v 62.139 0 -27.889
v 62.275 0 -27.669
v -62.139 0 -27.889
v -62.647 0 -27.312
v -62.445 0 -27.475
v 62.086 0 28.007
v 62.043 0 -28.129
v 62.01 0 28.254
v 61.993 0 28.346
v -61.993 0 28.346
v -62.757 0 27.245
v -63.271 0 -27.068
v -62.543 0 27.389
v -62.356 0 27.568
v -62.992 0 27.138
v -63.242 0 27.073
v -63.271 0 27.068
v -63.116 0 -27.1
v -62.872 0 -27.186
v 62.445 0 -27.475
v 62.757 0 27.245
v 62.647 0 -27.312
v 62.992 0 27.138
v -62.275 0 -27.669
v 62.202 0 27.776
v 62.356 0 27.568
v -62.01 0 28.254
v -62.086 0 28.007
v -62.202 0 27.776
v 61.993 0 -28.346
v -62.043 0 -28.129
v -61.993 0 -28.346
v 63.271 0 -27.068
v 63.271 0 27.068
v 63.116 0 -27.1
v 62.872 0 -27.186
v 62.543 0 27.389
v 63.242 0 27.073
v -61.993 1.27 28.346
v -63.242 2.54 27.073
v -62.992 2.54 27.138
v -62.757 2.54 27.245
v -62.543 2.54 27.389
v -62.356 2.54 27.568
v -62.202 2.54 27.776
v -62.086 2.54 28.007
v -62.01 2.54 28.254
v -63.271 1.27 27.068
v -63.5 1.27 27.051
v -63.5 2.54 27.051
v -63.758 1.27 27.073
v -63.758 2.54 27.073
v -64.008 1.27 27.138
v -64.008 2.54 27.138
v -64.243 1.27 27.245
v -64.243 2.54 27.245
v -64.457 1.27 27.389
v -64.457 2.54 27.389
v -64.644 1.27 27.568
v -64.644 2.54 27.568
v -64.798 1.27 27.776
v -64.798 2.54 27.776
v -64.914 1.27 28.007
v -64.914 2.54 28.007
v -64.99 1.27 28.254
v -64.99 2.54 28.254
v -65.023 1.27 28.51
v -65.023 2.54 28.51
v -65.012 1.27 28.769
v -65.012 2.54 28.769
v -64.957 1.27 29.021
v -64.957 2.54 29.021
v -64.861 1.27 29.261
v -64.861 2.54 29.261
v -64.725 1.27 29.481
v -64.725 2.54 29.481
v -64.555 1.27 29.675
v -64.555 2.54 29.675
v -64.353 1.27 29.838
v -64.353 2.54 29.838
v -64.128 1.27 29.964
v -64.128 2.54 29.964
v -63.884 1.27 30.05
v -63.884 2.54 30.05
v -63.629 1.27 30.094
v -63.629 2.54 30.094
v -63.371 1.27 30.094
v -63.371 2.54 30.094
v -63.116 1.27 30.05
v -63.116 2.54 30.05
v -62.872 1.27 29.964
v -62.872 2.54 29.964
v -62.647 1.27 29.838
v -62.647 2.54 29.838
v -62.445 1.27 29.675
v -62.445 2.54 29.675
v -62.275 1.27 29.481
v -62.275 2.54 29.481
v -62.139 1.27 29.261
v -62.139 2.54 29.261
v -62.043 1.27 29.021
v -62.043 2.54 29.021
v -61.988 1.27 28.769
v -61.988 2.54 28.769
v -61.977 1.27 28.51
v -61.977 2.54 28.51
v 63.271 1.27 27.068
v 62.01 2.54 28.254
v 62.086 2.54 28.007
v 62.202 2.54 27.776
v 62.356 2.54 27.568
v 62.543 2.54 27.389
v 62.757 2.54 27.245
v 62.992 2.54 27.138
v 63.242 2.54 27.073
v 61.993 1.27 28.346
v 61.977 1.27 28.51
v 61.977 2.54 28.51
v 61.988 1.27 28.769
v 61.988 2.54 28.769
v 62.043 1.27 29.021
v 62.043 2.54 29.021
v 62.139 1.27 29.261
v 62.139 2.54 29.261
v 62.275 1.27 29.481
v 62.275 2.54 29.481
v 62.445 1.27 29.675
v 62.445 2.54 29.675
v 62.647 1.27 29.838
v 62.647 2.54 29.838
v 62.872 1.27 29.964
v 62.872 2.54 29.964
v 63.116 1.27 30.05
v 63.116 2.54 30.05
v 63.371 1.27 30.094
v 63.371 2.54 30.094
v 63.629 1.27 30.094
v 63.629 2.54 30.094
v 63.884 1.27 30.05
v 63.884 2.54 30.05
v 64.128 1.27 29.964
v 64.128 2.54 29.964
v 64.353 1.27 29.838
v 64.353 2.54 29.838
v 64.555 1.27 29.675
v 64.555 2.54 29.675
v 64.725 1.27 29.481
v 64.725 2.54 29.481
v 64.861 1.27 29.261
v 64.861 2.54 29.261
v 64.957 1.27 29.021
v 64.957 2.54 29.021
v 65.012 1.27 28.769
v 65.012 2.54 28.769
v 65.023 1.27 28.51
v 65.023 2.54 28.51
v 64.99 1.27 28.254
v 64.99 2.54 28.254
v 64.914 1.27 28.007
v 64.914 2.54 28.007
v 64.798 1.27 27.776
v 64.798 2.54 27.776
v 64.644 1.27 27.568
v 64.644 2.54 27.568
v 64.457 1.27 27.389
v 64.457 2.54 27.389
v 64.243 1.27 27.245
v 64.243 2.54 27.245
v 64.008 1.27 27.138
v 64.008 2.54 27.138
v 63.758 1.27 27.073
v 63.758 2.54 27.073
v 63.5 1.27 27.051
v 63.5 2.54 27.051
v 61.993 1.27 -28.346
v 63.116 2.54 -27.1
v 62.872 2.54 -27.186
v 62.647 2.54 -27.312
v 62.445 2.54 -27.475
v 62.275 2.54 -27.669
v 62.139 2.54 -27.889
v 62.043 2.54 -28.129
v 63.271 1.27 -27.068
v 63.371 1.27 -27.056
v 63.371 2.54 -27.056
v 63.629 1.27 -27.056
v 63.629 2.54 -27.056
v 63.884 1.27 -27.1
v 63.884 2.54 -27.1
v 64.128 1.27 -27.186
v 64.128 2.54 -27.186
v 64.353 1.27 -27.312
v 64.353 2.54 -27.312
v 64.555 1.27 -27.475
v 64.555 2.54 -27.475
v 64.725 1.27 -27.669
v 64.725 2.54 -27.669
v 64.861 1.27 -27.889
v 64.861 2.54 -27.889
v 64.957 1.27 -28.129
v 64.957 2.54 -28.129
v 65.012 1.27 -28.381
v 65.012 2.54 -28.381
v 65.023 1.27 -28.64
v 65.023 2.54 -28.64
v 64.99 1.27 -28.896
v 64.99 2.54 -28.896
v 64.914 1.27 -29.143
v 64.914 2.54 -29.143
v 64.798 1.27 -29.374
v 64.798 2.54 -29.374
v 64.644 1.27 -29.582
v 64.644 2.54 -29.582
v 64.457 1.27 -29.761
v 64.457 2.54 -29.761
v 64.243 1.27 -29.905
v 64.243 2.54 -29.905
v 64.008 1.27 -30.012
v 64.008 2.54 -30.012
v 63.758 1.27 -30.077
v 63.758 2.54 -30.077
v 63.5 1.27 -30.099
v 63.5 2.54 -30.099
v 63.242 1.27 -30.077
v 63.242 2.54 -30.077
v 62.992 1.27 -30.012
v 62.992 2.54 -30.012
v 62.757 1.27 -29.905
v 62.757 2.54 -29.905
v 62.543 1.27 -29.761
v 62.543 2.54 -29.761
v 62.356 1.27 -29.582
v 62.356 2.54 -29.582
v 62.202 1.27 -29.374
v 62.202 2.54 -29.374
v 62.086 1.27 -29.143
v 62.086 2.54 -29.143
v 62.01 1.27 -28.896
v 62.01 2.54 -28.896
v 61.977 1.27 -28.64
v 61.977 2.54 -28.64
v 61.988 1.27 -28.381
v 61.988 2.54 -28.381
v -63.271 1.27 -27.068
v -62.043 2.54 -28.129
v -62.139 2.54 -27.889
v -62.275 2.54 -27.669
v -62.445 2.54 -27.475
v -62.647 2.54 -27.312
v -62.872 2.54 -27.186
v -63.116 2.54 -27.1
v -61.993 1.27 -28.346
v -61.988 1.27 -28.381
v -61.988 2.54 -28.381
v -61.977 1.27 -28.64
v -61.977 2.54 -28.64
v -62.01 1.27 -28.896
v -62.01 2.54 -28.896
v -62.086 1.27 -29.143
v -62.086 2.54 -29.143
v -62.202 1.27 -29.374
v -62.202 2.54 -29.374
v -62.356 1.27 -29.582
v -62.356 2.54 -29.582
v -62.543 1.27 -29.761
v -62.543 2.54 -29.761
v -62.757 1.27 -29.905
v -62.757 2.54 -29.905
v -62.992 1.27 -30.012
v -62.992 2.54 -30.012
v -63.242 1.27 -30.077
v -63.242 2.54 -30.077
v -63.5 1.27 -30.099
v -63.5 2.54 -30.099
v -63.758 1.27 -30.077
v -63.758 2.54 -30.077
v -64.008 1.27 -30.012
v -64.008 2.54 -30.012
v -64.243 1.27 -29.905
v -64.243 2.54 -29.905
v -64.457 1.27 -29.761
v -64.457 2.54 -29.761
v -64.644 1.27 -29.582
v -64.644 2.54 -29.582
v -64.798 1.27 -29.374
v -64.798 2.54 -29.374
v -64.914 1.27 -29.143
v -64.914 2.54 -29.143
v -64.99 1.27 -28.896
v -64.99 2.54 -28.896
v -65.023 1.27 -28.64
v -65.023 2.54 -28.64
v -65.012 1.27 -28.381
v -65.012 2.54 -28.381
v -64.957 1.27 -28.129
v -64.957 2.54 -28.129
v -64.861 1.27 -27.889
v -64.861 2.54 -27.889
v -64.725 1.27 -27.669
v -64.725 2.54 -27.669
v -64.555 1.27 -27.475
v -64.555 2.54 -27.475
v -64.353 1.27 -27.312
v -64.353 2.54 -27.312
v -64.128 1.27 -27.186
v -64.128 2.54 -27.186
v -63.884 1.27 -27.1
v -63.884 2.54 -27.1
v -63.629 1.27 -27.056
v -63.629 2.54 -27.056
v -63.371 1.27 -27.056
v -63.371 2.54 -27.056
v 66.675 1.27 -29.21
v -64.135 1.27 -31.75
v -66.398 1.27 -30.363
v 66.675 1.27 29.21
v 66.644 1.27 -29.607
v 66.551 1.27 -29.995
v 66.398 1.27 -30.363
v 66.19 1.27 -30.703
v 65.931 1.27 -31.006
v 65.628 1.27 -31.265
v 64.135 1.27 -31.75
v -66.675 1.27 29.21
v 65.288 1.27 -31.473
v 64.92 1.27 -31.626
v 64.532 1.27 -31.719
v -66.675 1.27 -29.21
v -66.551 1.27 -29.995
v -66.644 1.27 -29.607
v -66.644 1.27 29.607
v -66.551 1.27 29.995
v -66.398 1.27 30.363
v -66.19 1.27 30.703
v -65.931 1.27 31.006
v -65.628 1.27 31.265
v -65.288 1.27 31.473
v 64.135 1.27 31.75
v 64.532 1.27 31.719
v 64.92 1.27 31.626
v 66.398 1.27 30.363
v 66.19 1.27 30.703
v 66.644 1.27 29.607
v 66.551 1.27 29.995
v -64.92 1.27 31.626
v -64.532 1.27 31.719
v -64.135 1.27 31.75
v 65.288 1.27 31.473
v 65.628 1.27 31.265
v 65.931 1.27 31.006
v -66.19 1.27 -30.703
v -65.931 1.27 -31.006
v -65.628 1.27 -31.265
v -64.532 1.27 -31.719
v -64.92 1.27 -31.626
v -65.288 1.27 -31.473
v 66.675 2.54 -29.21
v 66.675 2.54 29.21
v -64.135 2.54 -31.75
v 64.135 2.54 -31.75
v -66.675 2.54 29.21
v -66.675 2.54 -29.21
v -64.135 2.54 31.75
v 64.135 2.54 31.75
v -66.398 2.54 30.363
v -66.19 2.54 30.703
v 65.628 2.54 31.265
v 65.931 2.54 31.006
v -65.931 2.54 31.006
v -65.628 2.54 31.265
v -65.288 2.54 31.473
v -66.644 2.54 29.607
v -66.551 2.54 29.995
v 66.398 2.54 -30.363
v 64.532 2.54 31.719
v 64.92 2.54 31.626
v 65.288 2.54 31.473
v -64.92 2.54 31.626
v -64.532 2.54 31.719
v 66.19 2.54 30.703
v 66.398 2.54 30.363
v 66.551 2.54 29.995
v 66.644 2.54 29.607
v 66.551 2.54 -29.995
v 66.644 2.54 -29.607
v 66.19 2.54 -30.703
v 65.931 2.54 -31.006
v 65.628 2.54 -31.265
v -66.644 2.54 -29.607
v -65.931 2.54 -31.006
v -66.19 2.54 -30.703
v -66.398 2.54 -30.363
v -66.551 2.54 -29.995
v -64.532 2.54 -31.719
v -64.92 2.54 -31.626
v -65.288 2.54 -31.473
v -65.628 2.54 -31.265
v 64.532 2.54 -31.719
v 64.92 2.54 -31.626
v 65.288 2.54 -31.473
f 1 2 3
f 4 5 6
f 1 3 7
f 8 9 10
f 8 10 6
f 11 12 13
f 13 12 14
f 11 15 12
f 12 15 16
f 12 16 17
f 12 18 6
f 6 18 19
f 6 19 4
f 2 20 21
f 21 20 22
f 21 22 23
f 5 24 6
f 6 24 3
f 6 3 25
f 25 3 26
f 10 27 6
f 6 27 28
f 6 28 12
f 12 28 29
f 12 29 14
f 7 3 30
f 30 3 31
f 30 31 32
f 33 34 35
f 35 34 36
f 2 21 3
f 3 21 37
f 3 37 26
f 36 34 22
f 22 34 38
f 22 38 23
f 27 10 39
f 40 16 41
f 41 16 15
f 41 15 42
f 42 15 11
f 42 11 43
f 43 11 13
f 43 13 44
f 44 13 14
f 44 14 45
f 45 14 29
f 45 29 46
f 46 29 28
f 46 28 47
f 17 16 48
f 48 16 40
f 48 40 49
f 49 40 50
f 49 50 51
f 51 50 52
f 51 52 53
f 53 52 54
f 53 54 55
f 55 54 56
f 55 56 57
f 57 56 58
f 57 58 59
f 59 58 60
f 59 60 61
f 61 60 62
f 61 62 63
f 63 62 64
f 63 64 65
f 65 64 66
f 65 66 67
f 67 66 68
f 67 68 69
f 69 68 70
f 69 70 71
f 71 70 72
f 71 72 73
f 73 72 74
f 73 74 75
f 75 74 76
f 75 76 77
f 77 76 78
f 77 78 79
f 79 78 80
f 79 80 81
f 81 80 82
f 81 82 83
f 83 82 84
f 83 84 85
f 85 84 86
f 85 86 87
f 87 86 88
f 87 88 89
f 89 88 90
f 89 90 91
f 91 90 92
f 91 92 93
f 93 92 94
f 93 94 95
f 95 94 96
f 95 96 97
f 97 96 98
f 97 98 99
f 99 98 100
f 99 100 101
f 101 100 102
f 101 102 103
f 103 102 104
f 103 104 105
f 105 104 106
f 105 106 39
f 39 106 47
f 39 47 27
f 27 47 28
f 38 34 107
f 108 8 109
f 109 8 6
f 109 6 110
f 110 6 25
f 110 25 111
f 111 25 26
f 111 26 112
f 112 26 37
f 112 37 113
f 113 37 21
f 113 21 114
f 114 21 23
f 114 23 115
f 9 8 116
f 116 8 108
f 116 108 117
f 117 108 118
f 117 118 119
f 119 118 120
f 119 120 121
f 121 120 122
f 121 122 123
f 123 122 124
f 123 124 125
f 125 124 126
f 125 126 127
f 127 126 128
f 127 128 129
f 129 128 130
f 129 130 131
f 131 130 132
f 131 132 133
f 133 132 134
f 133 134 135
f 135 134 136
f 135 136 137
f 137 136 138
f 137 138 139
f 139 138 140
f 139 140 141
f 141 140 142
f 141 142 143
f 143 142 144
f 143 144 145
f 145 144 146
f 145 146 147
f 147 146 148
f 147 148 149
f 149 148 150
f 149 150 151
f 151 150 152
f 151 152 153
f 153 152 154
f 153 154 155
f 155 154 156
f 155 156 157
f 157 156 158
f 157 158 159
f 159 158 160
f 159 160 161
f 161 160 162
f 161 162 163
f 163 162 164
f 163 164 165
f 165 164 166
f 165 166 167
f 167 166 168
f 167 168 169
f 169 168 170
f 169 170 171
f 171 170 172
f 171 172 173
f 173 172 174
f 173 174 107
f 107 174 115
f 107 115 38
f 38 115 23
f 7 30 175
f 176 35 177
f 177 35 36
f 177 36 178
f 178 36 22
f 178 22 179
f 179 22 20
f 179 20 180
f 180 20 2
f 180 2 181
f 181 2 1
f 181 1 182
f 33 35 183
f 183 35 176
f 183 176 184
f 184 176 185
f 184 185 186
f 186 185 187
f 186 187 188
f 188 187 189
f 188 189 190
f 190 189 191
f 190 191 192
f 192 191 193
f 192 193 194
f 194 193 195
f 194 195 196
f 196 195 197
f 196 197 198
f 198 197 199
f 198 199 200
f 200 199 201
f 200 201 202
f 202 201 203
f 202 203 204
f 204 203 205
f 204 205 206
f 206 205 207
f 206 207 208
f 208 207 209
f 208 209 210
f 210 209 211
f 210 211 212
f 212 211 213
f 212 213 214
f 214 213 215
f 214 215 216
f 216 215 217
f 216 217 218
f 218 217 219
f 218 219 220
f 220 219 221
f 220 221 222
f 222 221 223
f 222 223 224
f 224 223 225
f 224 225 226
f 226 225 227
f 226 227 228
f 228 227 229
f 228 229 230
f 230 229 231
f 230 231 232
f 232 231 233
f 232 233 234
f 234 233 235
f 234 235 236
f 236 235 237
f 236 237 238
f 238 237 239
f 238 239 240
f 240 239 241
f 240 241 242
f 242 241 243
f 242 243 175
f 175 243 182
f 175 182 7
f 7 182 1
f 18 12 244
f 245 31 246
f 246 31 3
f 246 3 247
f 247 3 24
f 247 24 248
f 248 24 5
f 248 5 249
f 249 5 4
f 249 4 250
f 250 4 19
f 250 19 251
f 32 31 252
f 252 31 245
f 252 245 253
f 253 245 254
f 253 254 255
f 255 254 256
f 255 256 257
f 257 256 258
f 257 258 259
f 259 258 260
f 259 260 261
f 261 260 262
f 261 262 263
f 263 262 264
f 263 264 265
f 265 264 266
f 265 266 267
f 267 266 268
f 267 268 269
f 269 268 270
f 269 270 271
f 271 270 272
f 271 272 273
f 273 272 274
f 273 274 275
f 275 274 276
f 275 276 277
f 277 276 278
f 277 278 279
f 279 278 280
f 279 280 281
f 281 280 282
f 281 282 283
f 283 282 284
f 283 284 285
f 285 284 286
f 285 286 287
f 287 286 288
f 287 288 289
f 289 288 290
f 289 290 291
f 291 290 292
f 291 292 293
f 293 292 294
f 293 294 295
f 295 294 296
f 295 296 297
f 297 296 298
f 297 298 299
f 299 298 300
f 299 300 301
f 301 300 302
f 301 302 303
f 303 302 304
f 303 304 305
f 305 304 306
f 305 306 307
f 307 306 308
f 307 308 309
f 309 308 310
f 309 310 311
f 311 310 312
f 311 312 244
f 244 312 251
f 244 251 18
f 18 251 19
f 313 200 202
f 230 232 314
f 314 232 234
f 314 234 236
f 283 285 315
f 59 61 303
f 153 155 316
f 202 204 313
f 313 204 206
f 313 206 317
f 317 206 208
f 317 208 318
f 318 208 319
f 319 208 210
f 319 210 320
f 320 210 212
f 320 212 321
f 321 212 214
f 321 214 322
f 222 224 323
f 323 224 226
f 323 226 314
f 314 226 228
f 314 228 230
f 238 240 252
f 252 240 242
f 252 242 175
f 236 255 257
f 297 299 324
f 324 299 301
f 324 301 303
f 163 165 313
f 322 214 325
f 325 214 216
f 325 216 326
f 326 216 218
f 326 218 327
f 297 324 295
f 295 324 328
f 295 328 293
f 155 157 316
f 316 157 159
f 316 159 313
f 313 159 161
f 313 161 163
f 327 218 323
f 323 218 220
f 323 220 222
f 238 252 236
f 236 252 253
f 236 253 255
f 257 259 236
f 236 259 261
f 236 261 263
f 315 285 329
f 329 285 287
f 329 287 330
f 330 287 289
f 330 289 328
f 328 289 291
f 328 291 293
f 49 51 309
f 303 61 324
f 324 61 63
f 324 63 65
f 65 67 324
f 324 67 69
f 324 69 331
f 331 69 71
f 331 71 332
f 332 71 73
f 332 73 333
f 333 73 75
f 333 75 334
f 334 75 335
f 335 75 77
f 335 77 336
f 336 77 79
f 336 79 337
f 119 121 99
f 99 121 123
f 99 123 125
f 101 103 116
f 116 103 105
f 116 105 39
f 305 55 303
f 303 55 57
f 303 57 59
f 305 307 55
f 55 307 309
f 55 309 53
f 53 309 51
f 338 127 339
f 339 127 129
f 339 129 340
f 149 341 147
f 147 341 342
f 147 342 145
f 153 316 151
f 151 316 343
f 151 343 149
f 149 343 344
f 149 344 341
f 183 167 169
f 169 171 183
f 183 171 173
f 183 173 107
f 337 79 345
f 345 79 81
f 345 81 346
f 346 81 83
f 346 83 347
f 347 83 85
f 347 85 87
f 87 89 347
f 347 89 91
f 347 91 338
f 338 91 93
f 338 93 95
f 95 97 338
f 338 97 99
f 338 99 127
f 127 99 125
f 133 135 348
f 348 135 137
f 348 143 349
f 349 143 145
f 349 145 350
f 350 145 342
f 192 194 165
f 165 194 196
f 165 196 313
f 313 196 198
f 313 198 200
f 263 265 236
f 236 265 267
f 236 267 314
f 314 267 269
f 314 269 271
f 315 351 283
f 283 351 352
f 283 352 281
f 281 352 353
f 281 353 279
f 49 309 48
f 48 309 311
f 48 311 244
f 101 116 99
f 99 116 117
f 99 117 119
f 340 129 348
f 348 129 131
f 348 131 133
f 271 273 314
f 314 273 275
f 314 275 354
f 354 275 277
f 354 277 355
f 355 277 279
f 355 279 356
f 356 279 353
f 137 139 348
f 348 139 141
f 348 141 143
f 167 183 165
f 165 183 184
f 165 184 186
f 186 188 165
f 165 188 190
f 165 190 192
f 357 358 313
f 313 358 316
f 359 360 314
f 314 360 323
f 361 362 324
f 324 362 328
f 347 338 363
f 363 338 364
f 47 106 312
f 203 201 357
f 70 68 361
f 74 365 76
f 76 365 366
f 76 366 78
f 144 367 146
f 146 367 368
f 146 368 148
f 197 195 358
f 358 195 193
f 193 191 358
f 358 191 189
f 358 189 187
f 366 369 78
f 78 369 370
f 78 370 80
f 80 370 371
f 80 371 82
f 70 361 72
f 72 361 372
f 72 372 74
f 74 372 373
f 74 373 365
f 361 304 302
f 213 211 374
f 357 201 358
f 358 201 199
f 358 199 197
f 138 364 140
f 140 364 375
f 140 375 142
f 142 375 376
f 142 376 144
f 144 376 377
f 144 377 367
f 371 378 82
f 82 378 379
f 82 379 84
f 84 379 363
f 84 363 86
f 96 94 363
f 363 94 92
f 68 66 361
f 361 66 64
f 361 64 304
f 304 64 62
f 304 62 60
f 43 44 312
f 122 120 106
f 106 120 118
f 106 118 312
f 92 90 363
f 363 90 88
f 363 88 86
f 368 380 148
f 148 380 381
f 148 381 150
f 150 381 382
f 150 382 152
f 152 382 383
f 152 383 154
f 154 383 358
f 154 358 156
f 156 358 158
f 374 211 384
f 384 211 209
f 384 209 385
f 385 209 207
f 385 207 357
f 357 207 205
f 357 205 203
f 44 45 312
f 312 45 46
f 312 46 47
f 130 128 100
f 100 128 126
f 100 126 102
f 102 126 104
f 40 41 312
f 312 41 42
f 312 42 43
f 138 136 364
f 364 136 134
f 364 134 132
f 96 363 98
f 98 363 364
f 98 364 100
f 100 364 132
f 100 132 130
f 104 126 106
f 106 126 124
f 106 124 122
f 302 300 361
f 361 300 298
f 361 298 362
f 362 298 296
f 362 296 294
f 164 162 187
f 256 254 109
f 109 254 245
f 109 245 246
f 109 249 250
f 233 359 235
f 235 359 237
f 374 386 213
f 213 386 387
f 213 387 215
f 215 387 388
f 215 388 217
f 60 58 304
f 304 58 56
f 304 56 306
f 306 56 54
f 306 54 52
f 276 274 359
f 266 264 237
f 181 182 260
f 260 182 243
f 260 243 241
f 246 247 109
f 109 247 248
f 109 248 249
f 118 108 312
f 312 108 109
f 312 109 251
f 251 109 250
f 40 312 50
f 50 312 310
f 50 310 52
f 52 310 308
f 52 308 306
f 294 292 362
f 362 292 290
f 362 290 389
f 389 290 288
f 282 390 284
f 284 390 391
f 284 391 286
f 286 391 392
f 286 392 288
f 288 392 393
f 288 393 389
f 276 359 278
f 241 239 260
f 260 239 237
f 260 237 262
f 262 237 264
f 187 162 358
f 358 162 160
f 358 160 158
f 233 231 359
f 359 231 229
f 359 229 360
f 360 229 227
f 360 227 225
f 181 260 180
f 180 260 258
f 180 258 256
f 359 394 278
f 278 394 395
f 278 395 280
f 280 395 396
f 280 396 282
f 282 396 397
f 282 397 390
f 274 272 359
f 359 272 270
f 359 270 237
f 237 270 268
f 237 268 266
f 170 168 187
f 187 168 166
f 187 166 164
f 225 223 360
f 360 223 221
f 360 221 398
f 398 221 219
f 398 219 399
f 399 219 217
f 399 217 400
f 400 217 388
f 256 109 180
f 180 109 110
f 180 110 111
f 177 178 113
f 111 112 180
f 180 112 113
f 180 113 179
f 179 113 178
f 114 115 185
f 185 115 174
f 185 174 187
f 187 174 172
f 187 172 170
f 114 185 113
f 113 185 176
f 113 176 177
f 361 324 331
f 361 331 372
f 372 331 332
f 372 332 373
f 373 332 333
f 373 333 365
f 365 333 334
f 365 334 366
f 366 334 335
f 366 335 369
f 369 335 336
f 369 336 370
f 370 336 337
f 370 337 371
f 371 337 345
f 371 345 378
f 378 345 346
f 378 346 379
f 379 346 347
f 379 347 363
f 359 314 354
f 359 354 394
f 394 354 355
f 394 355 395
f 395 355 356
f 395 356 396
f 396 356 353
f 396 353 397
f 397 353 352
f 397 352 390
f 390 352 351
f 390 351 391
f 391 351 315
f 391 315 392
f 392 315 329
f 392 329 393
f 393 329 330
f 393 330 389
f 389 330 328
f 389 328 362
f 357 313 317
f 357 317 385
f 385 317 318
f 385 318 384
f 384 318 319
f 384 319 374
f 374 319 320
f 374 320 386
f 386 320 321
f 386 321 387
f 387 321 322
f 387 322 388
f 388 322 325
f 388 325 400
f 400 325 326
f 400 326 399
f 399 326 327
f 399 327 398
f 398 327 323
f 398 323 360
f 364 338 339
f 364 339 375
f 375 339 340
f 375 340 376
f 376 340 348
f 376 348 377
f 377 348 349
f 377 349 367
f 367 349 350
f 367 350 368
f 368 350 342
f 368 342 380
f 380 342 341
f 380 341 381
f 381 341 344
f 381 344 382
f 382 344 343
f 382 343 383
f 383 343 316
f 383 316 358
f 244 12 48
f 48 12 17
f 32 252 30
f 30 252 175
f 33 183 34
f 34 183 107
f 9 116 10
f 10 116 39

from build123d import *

# Parameters (mm, degrees)
SKETCH2_W           = 127
SKETCH2_H           = 57.15
BOSS_EXTRUDE3_DEPTH = 1.27
SKETCH3_W           = 133.35
SKETCH3_H           = 63.5
BOSS_EXTRUDE4_DEPTH = 1.27
SKETCH4_R           = 1.524
CUT_EXTRUDE1_DEPTH  = 74.892284611
FILLET1_R           = 2.54
SKETCH5_W           = 127
SKETCH5_H           = 57.15
SKETCH5_W_2         = 126.5428
SKETCH5_H_2         = 56.6928
CUT_EXTRUDE2_DEPTH  = 1.27


with BuildPart() as part:
    # Sketch2 → Boss-Extrude3 (new body)
    with BuildSketch(Plane(origin=(0, 0, 0), x_dir=(1, 0, 0), z_dir=(0, 1, 0))):
        Rectangle(SKETCH2_W, SKETCH2_H)
    extrude(amount=BOSS_EXTRUDE3_DEPTH)

    # Sketch3 → Boss-Extrude4 (add)
    with BuildSketch(Plane(origin=(0, 1.27, 0), x_dir=(1, 0, 0), z_dir=(0, 1, 0))):
        Rectangle(SKETCH3_W, SKETCH3_H)
    extrude(amount=BOSS_EXTRUDE4_DEPTH)

    # Sketch4 → Cut-Extrude1 (cut, through all)
    with BuildSketch(Plane(origin=(0, 0, 0), x_dir=(-1, 0, 0), z_dir=(0, -1, 0))):
        with Locations(Location((63.5, -28.575, 0), (0, 0, 90))):
            Circle(SKETCH4_R)
        with Locations(Location((-63.5, -28.575, 0), (0, 0, 90))):
            Circle(SKETCH4_R)
        with Locations(Location((-63.5, 28.575, 0), (0, 0, 90))):
            Circle(SKETCH4_R)
        with Locations(Location((63.5, 28.575, 0), (0, 0, 90))):
            Circle(SKETCH4_R)
    extrude(amount=-CUT_EXTRUDE1_DEPTH, mode=Mode.SUBTRACT)

    # Fillet1
    fillet1_edges = [part.edges().sort_by_distance(p)[0] for p in [
        (66.675, 1.905, 31.75),
        (66.675, 1.905, -31.75),
        (-66.675, 1.905, -31.75),
        (-66.675, 1.905, 31.75),
    ]]
    fillet(fillet1_edges, radius=FILLET1_R)

    # Sketch5 → Cut-Extrude2 (cut)
    with BuildSketch(Plane(origin=(0, 0, 0), x_dir=(-1, 0, 0), z_dir=(0, -1, 0))):
        Rectangle(SKETCH5_W, SKETCH5_H)
        Rectangle(SKETCH5_W_2, SKETCH5_H_2, mode=Mode.SUBTRACT)
    extrude(amount=-CUT_EXTRUDE2_DEPTH, mode=Mode.SUBTRACT)


solid = part.part
